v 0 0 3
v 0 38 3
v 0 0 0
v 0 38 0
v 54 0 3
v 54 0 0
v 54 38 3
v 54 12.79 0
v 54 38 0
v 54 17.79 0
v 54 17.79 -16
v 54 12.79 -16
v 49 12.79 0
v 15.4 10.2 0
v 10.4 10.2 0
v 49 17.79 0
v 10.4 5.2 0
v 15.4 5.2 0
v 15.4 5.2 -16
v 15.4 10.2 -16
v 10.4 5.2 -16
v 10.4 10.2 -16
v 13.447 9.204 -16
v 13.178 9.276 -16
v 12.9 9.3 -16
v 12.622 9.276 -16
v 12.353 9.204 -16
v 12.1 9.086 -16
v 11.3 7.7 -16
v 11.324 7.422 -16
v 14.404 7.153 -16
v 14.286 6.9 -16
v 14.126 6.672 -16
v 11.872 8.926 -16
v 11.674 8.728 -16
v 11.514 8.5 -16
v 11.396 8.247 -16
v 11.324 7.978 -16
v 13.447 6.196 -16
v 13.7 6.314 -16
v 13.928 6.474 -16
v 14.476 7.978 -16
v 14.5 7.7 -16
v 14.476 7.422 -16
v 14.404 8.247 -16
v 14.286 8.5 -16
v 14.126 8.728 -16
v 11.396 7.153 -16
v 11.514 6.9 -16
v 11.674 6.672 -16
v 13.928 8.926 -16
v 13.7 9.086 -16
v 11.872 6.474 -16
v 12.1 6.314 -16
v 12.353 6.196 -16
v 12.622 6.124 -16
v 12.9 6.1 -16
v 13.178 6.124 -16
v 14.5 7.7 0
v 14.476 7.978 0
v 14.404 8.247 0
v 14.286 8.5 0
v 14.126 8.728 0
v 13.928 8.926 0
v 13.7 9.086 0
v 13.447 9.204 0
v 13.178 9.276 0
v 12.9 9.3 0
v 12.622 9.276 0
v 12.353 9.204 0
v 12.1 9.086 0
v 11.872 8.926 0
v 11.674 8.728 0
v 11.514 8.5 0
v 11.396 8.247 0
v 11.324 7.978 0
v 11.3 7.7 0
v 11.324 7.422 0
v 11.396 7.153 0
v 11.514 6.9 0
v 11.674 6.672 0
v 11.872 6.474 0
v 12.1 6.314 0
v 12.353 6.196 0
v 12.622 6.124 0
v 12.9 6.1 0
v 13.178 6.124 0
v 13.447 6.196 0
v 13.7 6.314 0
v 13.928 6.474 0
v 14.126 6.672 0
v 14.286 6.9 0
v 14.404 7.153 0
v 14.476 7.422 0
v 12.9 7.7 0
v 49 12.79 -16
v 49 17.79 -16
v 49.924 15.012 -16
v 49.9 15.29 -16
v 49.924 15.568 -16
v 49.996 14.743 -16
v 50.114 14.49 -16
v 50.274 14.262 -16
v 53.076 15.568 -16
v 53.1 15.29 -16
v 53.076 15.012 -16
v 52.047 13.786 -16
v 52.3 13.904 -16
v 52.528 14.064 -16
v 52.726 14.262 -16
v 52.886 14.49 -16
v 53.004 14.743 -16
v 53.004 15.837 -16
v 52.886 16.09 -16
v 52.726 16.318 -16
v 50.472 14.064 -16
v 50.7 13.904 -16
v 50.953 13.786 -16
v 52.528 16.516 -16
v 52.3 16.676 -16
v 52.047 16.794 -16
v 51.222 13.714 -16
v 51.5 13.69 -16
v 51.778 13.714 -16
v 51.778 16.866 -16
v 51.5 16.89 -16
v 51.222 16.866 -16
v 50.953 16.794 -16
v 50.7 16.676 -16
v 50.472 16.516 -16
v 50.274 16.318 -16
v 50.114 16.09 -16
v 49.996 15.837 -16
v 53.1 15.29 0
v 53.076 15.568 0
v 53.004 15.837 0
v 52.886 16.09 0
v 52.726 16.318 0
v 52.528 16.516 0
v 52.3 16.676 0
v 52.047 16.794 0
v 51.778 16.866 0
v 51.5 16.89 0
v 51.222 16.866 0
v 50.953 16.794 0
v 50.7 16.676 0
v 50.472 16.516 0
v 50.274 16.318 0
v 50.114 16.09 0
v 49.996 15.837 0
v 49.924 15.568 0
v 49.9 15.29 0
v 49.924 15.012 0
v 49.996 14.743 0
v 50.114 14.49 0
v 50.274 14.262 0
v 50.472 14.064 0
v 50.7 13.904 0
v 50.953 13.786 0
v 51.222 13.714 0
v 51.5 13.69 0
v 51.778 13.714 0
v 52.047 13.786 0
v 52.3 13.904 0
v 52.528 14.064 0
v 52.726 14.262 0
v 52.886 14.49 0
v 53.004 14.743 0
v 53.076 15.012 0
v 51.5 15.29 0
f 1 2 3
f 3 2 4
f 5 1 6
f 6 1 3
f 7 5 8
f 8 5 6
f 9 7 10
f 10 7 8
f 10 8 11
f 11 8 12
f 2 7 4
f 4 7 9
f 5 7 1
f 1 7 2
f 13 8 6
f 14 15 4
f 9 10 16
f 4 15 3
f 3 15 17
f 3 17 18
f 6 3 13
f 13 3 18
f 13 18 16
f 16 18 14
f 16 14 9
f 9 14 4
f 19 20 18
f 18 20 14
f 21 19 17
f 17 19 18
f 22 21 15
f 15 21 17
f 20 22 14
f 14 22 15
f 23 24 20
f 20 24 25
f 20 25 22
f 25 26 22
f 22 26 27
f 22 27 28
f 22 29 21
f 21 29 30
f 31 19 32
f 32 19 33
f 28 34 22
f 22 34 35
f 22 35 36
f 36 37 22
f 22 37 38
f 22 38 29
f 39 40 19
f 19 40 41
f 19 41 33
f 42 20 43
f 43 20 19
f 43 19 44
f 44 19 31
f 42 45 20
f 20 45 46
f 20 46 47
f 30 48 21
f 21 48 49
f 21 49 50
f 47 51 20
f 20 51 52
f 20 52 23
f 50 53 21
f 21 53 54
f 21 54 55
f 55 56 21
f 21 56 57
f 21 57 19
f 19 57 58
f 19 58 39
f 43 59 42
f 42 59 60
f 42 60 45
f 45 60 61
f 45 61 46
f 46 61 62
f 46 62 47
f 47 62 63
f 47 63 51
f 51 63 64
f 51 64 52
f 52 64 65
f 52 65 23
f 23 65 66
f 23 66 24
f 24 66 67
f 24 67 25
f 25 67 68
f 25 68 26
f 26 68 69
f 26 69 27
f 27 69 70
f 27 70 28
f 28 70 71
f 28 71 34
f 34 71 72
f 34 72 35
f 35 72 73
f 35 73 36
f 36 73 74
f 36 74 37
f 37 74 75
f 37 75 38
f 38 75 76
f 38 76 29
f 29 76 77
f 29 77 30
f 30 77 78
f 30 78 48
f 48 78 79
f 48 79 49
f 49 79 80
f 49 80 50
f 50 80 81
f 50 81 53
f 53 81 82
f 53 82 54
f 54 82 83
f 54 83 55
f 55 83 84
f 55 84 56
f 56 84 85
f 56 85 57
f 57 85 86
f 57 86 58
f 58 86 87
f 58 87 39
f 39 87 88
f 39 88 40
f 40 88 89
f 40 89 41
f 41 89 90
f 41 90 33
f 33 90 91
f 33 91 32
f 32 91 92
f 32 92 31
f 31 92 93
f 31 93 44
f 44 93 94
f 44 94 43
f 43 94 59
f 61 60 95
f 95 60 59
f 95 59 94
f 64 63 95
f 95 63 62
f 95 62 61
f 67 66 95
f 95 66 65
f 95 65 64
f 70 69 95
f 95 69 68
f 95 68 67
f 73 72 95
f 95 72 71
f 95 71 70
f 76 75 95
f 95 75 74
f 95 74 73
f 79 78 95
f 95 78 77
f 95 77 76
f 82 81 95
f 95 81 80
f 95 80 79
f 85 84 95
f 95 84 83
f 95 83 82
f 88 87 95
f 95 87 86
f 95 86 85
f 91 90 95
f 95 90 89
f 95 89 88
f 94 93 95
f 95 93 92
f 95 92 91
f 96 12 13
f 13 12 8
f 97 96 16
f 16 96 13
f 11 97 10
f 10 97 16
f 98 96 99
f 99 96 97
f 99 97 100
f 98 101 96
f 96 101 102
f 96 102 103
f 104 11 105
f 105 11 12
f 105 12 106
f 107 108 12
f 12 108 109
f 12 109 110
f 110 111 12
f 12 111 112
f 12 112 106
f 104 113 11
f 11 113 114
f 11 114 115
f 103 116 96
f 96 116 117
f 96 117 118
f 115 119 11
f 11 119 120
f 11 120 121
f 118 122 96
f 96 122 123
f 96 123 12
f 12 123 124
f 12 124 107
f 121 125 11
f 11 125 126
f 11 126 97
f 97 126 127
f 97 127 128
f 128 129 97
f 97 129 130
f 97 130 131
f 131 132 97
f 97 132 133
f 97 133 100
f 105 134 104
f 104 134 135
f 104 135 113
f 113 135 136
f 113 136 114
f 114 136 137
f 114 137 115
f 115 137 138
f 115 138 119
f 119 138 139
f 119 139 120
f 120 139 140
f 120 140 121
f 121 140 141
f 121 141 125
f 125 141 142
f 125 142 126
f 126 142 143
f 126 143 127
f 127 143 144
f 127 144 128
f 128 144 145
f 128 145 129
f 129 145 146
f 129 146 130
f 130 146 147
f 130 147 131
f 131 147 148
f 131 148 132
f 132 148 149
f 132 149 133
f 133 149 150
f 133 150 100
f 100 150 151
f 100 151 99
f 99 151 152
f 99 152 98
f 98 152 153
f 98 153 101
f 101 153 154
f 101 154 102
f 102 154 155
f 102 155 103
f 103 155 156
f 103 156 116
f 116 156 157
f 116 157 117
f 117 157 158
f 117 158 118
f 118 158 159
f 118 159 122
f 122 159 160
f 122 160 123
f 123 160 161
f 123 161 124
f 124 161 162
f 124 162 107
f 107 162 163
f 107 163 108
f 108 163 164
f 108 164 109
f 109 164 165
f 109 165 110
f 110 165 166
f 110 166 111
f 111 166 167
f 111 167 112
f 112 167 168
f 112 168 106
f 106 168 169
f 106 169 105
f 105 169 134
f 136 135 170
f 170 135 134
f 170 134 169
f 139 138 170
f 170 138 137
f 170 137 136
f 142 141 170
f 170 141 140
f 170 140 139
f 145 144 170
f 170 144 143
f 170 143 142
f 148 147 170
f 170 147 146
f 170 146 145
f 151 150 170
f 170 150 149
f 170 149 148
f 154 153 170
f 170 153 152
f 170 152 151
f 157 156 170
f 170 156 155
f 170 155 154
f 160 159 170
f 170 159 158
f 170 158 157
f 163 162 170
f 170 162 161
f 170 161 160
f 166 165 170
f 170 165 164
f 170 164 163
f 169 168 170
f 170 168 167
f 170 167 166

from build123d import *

# Parameters (mm, degrees)
SKETCH1_W           = 54
SKETCH1_H           = 38
BOSS_EXTRUDE1_DEPTH = 3
SKETCH2_W           = 5
SKETCH2_H           = 5
SKETCH2_R           = 1.6
BOSS_EXTRUDE2_DEPTH = 16


with BuildPart() as part:
    # Sketch1 → Boss-Extrude1 (new body)
    with BuildSketch(Plane.XY):
        with Locations((27, 19)):
            Rectangle(SKETCH1_W, SKETCH1_H)
    extrude(amount=BOSS_EXTRUDE1_DEPTH)

    # Sketch2 → Boss-Extrude2 (add)
    # profile 1 of 2: a face of its own
    with BuildSketch(Plane.XY):
        with Locations((12.9, 7.7)):
            Rectangle(SKETCH2_W, SKETCH2_H)
        with Locations((12.9, 7.7)):
            Circle(SKETCH2_R, mode=Mode.SUBTRACT)
    # profile 2 of 2: a face of its own
    with BuildSketch(Plane.XY):
        with Locations((51.5, 15.29)):
            Rectangle(SKETCH2_W, SKETCH2_H)
        with Locations((51.5, 15.29)):
            Circle(SKETCH2_R, mode=Mode.SUBTRACT)
    extrude(amount=-BOSS_EXTRUDE2_DEPTH)


solid = part.part
